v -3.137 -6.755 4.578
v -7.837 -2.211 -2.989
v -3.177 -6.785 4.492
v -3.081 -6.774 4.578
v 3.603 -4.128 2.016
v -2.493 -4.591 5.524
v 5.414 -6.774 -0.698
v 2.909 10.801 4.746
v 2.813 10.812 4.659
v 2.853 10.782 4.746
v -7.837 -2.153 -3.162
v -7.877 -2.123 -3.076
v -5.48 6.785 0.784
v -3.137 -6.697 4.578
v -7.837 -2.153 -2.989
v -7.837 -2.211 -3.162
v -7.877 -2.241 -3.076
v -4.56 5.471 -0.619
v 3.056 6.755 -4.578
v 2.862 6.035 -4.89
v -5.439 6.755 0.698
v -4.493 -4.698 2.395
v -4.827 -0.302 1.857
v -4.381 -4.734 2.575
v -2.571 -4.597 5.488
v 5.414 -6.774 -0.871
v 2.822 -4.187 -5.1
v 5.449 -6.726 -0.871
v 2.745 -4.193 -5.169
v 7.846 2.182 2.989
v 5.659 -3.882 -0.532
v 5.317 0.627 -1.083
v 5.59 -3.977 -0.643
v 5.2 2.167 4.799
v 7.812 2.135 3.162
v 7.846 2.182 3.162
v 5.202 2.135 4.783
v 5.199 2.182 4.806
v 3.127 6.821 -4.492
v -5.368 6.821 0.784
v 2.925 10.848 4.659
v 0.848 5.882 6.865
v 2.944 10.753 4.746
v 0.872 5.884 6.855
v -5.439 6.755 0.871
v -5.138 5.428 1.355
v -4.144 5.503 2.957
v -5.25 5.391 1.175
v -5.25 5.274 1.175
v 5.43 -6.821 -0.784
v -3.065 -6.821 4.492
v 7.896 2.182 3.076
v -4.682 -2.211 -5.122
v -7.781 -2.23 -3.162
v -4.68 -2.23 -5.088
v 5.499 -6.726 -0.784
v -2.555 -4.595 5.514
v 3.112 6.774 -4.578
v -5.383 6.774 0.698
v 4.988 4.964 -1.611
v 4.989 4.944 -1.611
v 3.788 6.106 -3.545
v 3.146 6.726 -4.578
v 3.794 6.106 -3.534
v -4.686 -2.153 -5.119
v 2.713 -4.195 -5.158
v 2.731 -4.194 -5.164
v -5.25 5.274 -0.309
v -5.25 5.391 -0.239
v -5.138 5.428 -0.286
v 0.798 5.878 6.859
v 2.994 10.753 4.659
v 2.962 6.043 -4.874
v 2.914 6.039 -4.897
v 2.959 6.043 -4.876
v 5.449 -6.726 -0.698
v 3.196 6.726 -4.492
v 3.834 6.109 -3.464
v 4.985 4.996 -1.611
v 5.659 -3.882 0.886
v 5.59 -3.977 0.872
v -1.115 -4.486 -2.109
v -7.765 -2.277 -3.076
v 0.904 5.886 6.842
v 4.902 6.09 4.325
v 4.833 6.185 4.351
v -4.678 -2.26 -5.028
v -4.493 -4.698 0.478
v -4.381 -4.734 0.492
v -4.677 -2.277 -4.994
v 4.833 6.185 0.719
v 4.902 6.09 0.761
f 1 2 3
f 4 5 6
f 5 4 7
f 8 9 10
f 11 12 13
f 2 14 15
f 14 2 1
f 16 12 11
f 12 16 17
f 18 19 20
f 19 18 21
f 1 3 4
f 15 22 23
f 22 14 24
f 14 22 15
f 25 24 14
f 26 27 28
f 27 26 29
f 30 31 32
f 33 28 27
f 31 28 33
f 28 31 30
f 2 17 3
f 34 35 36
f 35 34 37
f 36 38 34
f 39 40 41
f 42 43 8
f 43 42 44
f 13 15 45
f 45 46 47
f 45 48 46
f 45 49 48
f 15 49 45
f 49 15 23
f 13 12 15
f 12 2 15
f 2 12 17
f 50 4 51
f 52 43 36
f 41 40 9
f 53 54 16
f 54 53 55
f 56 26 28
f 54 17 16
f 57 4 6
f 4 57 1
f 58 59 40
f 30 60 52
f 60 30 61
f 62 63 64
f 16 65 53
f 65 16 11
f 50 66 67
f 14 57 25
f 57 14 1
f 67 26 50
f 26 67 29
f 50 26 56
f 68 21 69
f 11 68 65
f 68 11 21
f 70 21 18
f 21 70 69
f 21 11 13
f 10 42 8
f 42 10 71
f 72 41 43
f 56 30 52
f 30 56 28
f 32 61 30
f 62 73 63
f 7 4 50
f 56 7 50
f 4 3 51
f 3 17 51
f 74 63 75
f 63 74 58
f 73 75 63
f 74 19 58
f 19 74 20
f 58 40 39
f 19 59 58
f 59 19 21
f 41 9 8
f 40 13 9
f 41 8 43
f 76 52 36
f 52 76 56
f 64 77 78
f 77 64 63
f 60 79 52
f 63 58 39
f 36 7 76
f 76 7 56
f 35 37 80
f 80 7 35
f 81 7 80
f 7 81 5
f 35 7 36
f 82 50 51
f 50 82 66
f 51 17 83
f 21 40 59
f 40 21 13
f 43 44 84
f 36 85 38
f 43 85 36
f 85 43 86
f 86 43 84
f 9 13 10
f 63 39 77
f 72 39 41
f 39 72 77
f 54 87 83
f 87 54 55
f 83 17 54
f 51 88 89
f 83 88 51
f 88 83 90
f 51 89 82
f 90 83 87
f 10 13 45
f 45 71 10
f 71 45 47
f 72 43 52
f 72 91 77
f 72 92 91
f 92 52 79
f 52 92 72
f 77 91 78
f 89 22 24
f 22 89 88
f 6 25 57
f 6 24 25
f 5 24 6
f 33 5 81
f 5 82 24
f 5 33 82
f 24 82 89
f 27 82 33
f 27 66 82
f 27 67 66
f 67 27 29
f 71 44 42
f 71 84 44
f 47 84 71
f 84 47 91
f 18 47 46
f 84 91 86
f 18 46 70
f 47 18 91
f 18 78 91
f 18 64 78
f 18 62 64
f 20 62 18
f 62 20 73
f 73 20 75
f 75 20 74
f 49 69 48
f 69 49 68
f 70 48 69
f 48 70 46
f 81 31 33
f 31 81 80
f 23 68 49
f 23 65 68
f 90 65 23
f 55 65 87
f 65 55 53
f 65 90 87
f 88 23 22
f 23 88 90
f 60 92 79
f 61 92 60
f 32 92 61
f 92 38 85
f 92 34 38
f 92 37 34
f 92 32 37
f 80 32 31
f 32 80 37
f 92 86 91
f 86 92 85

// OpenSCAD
// Auto-generated OpenSCAD file

    inner_points = 10*[[0.5559449618614191, -0.3881500309253424, -0.49999999999987577], [0.5559449618612677, -0.388150030925249, 0.5000000000001242], [0.48020738242017447, 0.6089777537945407, -0.4999999999999803], [0.48020738242002303, 0.6089777537946339, 0.5000000000000198], [-0.4411828228584638, -0.463887610366587, -0.5000000000000198], [-0.4411828228586152, -0.46388761036649373, 0.4999999999999803], [-0.5169204022997085, 0.5332401743532961, -0.5000000000001242], [-0.5169204022998598, 0.5332401743533893, 0.49999999999987577], [0.019512279780962472, 0.0725450717139109, -1.2071067811865475]];

    outer_points = 10*[[0.3096145243221563, 0.6725957727848044, -0.4491700933508113], [0.06987533319280242, -0.21820844720590366, -0.8351661579465389], [0.7796115315738568, 0.21820844720590366, 0.3075563906100046], [0.5398723404445028, -0.6725957727848044, -0.07843967398572299], [-0.5398723404445028, 0.6725957727848044, 0.07843967398572299], [-0.7796115315738568, -0.21820844720590366, -0.3075563906100046], [-0.06987533319280242, 0.21820844720590366, 0.8351661579465389], [-0.3096145243221563, -0.6725957727848044, 0.4491700933508113], [0.28939080332842093, 1.0752958146603768, 0.46593846708482345]];

    // Convex hull for inner set (I)
    module inner_hull() {
        hull() {
            for (p = inner_points) {
                translate(p) sphere(r=0.1);
            }
        }
    }

    // Convex hull for outer set (O) minus inner hull (O \ I)
    module outer_minus_inner() {
        difference() {
            hull() {
                for (p = outer_points) {
                    translate(p) sphere(r=0.1);
                }
            }
            inner_hull(); // Subtract inner hull
        }
    }

    // Convex hull for outer set (O) minus all translated inner hulls
    module outer_minus_AllTranslationInner() {
        difference() {
            hull() {
                for (p = outer_points) {
                    translate(p) sphere(r=0.1);
                }
            }
            hull() {
                translate([0,0,50]) inner_hull();
                translate([0,0,-50]) inner_hull();
            }; // Subtract translated inner hulls
        }
    }

    // Difference between outer_minus_inner and outer_minus_AllTranslationInner
    module outer_minus_inner_diff() {
        difference() {
            // Outer minus inner
            difference() {
                hull() {
                    for (p = outer_points) {
                        translate(p) sphere(r=0.1);
                    }
                }
                inner_hull();
            }

            // Subtract Outer minus AllTranslationInner
            difference() {
                hull() {
                    for (p = outer_points) {
                        translate(p) sphere(r=0.1);
                    }
                }
                hull() {
                    translate([0,0,50]) inner_hull();
                    translate([0,0,-50]) inner_hull();
                };
            }
        }
    }

    // Rendering all with colors applied
    color([0, 1, 0, 1]) outer_minus_AllTranslationInner(); // Opaque green
    
